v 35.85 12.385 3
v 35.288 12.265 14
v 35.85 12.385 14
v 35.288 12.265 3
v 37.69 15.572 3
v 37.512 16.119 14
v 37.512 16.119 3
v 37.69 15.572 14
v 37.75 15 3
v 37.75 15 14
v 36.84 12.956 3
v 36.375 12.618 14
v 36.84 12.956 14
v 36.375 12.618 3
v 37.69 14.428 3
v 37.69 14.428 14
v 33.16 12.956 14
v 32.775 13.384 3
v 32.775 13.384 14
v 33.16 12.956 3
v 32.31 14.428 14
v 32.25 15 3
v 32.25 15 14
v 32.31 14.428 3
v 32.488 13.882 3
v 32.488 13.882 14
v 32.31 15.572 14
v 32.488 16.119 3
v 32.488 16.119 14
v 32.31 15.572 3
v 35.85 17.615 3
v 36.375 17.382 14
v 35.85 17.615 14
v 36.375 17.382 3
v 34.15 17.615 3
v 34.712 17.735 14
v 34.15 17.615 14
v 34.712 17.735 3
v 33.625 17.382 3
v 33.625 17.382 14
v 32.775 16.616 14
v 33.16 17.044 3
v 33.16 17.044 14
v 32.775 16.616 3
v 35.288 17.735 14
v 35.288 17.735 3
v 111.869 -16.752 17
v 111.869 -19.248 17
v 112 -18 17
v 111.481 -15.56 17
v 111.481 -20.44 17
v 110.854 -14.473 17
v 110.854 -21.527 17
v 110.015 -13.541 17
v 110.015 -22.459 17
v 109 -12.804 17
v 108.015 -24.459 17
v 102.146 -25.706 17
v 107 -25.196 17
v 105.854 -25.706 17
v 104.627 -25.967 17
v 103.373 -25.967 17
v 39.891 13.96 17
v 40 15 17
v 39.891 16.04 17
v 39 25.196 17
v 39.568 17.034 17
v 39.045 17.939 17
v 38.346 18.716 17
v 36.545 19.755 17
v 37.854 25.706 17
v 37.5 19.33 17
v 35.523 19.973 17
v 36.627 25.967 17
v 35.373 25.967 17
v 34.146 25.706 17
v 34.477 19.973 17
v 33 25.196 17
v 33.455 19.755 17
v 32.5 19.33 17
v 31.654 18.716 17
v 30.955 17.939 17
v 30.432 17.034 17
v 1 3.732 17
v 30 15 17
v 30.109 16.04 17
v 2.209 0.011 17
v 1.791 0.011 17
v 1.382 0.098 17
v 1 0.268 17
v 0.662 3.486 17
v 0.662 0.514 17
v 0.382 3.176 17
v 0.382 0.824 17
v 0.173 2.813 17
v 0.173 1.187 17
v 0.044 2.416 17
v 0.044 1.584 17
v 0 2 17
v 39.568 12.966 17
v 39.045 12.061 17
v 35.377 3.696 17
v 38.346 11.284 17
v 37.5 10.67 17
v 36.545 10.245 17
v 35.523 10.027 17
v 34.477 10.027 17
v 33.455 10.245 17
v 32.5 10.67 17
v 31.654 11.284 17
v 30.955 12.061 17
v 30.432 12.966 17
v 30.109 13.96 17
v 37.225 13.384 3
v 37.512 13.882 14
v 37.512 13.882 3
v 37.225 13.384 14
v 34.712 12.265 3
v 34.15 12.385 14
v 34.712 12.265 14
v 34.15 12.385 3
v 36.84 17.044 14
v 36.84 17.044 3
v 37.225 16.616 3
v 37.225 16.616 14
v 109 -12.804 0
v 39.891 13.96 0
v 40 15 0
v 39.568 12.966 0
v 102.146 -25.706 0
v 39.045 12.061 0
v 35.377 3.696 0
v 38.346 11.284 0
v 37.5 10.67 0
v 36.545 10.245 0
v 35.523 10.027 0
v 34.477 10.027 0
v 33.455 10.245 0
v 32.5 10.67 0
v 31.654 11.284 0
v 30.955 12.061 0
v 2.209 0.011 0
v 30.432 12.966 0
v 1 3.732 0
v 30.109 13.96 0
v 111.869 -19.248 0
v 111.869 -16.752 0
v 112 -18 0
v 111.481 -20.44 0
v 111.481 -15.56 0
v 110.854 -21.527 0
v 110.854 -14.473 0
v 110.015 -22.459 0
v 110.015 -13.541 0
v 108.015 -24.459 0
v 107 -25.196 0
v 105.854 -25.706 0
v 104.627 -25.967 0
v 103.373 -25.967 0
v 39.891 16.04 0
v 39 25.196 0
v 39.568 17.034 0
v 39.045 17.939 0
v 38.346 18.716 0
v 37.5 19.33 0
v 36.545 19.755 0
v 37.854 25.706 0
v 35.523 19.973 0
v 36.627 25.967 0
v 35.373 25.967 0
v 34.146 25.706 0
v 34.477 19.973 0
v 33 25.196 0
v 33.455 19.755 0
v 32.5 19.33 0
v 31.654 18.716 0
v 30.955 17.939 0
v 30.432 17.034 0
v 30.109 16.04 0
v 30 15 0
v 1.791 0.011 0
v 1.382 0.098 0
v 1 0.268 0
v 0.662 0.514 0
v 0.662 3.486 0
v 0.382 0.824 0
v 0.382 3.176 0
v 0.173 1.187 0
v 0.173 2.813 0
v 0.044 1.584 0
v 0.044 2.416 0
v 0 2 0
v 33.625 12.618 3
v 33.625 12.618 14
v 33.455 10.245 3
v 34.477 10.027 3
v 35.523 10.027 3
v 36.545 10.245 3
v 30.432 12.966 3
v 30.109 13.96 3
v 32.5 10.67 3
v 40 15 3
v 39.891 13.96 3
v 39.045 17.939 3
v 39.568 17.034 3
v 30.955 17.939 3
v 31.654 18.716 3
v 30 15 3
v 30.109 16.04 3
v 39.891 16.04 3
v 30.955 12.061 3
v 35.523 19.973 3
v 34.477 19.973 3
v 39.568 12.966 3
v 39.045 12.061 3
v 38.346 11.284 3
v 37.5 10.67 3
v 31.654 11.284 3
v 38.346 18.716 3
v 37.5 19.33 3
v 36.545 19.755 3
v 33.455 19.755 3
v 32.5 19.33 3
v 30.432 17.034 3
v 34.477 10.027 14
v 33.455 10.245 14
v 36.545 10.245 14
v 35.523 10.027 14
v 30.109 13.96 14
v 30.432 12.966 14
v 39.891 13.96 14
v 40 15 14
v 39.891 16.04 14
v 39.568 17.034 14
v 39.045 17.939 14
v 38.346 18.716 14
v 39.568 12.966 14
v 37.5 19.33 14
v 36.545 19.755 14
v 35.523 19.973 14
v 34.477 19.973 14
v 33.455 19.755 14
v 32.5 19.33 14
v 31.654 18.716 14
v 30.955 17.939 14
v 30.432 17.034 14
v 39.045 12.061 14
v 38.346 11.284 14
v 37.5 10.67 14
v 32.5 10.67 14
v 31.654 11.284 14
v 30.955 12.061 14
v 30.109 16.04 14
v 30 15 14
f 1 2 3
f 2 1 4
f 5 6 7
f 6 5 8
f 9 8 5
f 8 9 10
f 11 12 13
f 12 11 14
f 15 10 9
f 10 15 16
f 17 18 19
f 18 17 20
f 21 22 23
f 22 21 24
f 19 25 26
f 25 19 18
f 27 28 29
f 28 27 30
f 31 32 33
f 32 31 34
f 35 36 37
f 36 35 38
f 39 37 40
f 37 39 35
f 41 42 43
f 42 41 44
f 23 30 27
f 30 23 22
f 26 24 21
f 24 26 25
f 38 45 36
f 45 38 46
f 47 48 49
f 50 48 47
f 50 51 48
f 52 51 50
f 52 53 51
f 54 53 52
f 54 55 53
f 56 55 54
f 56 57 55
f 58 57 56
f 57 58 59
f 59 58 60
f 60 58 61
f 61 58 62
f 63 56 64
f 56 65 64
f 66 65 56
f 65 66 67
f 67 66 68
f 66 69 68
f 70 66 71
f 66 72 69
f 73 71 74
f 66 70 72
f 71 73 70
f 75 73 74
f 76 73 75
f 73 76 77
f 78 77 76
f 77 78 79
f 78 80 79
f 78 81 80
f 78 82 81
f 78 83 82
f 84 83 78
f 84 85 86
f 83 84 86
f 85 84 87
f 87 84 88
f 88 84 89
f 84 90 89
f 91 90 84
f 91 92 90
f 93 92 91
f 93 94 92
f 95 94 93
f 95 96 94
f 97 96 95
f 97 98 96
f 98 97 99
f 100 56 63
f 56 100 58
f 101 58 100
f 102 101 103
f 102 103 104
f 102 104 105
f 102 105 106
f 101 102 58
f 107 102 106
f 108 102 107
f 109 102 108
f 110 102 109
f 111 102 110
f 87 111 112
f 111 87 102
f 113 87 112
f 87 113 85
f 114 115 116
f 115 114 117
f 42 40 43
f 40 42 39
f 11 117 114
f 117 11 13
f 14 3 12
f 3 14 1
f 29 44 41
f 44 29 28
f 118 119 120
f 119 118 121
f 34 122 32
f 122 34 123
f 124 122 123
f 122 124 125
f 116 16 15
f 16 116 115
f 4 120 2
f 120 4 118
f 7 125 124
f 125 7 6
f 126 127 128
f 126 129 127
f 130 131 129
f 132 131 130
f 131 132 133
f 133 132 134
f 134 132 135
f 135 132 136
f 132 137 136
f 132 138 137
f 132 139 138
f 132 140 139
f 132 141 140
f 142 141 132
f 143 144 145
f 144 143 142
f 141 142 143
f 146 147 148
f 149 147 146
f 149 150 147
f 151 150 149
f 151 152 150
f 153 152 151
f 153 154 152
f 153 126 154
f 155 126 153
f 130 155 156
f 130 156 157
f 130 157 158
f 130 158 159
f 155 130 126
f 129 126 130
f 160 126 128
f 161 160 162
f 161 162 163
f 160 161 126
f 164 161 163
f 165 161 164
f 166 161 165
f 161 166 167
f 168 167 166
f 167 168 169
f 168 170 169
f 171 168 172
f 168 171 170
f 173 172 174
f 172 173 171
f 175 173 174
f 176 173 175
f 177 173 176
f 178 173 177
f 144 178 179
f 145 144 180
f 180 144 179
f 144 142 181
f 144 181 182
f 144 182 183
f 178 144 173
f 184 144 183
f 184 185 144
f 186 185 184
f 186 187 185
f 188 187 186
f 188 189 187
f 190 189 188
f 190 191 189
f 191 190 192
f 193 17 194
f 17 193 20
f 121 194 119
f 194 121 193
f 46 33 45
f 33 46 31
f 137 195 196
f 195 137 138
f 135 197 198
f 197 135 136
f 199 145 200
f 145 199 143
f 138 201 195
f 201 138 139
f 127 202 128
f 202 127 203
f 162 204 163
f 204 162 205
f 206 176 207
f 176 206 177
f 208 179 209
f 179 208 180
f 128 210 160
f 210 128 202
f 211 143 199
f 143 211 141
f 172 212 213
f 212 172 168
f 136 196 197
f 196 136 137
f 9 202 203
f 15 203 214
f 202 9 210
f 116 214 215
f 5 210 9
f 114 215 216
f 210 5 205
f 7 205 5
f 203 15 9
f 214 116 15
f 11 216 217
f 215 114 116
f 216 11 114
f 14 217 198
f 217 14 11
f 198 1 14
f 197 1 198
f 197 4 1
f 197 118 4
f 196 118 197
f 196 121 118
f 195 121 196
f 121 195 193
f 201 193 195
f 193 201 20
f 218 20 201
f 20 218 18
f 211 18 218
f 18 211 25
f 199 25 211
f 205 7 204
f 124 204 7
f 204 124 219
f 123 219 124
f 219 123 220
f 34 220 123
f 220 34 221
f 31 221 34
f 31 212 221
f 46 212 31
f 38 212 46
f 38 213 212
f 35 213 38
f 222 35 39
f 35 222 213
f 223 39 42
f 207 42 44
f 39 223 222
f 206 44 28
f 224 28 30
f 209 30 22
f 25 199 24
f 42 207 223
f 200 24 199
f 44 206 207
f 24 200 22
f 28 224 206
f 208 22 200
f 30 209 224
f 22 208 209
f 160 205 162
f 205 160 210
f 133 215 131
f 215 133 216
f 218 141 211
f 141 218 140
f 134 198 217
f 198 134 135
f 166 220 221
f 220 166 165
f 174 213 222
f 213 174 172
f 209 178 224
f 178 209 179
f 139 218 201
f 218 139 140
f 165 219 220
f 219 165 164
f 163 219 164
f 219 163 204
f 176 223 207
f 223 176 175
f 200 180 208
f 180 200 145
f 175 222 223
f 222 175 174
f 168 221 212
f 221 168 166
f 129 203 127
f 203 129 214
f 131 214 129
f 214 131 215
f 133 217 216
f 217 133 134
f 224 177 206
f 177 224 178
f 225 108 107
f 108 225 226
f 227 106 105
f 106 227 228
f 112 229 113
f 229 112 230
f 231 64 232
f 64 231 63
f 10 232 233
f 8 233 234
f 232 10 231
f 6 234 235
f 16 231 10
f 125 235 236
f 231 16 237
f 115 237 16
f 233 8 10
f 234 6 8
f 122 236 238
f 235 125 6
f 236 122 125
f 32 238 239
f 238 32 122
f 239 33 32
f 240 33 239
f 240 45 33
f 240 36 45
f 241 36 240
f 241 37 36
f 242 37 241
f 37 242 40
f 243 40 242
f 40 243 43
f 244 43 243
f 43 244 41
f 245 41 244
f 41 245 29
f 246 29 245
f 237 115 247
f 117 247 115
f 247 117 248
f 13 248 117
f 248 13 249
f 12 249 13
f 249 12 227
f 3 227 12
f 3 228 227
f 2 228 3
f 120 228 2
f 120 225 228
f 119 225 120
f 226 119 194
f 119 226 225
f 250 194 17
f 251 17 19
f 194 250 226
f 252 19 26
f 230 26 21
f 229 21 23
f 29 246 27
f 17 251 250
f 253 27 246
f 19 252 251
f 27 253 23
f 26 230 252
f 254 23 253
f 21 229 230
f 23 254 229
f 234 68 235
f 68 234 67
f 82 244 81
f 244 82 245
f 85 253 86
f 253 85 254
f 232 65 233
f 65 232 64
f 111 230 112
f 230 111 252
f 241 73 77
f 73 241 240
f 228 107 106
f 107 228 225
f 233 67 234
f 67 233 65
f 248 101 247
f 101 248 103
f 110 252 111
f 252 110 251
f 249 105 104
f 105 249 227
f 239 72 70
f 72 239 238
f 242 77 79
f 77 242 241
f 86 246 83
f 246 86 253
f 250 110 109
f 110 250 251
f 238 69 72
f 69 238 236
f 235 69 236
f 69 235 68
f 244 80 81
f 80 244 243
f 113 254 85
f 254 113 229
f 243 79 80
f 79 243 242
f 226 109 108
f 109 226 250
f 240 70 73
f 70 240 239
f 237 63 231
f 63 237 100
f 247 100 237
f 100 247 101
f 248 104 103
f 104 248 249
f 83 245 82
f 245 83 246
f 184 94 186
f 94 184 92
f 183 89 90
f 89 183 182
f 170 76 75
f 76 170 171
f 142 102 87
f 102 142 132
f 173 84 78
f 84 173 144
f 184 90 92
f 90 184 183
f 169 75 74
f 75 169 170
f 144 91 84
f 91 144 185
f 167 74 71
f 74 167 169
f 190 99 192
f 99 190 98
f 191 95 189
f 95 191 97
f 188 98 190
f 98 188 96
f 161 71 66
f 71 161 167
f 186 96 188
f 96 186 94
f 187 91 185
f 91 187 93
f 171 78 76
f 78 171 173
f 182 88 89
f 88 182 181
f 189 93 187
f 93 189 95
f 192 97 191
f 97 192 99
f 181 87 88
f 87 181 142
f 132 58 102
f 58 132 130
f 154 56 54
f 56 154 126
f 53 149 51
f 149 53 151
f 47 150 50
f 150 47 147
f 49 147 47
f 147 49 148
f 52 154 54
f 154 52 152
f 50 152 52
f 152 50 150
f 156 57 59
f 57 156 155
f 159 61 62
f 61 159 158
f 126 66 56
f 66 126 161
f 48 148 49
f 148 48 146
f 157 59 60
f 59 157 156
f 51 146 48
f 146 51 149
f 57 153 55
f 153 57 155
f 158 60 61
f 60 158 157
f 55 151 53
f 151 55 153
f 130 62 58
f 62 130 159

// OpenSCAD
// packa proteco
// ph1 ... vyska packy
// dira pro rotaci
// zap ... hloubka zapusteni
// dd1 ... prumer diry
// dd2 ... prumer zapusteni
$fn=30;

ph1 = 17;
zap = 3;
dd1 = 5.5;
dd2 = 10;

module dira_pro_cep() {
  union () {
    cylinder(d=dd1, h=ph1);
    cylinder(d=dd2, h=zap);
    translate([0,0,ph1-zap]) { cylinder(d=dd2, h=zap); }; 
   };
}

module packa() {
  difference () {
    union() {  
    hull() {
      translate([2,2,0]) cylinder(r=2,h=ph1);  
      translate([26,17,0]) cylinder(r=2,h=ph1);  
      translate([56,8,0]) cylinder(r=2,h=ph1);  
      translate([36,20,0]) cylinder(r=6,h=ph1);  
    };
    hull() {
      translate([36,20,0]) cylinder(r=6,h=ph1);  
      translate([26,10,0]) cylinder(r=2,h=ph1);  
      translate([104,-20,0]) cylinder(r=6,h=ph1);  
      translate([106,-18,0]) cylinder(r=6,h=ph1);  
    //  translate([96,-16,0]) cylinder(r=6,h=ph1);  
    };
   };
    translate([35,15,0]) { dira_pro_cep(); }; 
};
}

// packa 
   packa();


//difference () {
//  linear_extrude(height = ph1, center = false) { 
//      union() {
//        polygon([[0,0],[40,0],[40,22]], paths=[[0,1,2]]);
//        difference() {
//          translate([70,-80,0]) difference() {
//             polygon([
//             circle(r=65);
//            };
//      union() {
//         polygon([[-30,0],[190,0],[190,-190],[-30,-190]], paths=[[0,1,2,3]]);
//         // zkraceni packy
//         difference() {
//           polygon([[120,60],[190,60],[190,-190],[75,-190]], paths=[[0,1,2,3]]);
//           translate([100,15,0]) circle(d=25);
//          };
//        };
//      };
//    };
//   }; 
//   union () {
//     translate([35,15,0]) { cylinder(d=dd1, h=ph1); };
//     translate([35,15,0]) { cylinder(d=dd2, h=zap); };
//     translate([35,15,ph1-zap]) { cylinder(d=dd2, h=zap); }; 
//    };
//   }; 
